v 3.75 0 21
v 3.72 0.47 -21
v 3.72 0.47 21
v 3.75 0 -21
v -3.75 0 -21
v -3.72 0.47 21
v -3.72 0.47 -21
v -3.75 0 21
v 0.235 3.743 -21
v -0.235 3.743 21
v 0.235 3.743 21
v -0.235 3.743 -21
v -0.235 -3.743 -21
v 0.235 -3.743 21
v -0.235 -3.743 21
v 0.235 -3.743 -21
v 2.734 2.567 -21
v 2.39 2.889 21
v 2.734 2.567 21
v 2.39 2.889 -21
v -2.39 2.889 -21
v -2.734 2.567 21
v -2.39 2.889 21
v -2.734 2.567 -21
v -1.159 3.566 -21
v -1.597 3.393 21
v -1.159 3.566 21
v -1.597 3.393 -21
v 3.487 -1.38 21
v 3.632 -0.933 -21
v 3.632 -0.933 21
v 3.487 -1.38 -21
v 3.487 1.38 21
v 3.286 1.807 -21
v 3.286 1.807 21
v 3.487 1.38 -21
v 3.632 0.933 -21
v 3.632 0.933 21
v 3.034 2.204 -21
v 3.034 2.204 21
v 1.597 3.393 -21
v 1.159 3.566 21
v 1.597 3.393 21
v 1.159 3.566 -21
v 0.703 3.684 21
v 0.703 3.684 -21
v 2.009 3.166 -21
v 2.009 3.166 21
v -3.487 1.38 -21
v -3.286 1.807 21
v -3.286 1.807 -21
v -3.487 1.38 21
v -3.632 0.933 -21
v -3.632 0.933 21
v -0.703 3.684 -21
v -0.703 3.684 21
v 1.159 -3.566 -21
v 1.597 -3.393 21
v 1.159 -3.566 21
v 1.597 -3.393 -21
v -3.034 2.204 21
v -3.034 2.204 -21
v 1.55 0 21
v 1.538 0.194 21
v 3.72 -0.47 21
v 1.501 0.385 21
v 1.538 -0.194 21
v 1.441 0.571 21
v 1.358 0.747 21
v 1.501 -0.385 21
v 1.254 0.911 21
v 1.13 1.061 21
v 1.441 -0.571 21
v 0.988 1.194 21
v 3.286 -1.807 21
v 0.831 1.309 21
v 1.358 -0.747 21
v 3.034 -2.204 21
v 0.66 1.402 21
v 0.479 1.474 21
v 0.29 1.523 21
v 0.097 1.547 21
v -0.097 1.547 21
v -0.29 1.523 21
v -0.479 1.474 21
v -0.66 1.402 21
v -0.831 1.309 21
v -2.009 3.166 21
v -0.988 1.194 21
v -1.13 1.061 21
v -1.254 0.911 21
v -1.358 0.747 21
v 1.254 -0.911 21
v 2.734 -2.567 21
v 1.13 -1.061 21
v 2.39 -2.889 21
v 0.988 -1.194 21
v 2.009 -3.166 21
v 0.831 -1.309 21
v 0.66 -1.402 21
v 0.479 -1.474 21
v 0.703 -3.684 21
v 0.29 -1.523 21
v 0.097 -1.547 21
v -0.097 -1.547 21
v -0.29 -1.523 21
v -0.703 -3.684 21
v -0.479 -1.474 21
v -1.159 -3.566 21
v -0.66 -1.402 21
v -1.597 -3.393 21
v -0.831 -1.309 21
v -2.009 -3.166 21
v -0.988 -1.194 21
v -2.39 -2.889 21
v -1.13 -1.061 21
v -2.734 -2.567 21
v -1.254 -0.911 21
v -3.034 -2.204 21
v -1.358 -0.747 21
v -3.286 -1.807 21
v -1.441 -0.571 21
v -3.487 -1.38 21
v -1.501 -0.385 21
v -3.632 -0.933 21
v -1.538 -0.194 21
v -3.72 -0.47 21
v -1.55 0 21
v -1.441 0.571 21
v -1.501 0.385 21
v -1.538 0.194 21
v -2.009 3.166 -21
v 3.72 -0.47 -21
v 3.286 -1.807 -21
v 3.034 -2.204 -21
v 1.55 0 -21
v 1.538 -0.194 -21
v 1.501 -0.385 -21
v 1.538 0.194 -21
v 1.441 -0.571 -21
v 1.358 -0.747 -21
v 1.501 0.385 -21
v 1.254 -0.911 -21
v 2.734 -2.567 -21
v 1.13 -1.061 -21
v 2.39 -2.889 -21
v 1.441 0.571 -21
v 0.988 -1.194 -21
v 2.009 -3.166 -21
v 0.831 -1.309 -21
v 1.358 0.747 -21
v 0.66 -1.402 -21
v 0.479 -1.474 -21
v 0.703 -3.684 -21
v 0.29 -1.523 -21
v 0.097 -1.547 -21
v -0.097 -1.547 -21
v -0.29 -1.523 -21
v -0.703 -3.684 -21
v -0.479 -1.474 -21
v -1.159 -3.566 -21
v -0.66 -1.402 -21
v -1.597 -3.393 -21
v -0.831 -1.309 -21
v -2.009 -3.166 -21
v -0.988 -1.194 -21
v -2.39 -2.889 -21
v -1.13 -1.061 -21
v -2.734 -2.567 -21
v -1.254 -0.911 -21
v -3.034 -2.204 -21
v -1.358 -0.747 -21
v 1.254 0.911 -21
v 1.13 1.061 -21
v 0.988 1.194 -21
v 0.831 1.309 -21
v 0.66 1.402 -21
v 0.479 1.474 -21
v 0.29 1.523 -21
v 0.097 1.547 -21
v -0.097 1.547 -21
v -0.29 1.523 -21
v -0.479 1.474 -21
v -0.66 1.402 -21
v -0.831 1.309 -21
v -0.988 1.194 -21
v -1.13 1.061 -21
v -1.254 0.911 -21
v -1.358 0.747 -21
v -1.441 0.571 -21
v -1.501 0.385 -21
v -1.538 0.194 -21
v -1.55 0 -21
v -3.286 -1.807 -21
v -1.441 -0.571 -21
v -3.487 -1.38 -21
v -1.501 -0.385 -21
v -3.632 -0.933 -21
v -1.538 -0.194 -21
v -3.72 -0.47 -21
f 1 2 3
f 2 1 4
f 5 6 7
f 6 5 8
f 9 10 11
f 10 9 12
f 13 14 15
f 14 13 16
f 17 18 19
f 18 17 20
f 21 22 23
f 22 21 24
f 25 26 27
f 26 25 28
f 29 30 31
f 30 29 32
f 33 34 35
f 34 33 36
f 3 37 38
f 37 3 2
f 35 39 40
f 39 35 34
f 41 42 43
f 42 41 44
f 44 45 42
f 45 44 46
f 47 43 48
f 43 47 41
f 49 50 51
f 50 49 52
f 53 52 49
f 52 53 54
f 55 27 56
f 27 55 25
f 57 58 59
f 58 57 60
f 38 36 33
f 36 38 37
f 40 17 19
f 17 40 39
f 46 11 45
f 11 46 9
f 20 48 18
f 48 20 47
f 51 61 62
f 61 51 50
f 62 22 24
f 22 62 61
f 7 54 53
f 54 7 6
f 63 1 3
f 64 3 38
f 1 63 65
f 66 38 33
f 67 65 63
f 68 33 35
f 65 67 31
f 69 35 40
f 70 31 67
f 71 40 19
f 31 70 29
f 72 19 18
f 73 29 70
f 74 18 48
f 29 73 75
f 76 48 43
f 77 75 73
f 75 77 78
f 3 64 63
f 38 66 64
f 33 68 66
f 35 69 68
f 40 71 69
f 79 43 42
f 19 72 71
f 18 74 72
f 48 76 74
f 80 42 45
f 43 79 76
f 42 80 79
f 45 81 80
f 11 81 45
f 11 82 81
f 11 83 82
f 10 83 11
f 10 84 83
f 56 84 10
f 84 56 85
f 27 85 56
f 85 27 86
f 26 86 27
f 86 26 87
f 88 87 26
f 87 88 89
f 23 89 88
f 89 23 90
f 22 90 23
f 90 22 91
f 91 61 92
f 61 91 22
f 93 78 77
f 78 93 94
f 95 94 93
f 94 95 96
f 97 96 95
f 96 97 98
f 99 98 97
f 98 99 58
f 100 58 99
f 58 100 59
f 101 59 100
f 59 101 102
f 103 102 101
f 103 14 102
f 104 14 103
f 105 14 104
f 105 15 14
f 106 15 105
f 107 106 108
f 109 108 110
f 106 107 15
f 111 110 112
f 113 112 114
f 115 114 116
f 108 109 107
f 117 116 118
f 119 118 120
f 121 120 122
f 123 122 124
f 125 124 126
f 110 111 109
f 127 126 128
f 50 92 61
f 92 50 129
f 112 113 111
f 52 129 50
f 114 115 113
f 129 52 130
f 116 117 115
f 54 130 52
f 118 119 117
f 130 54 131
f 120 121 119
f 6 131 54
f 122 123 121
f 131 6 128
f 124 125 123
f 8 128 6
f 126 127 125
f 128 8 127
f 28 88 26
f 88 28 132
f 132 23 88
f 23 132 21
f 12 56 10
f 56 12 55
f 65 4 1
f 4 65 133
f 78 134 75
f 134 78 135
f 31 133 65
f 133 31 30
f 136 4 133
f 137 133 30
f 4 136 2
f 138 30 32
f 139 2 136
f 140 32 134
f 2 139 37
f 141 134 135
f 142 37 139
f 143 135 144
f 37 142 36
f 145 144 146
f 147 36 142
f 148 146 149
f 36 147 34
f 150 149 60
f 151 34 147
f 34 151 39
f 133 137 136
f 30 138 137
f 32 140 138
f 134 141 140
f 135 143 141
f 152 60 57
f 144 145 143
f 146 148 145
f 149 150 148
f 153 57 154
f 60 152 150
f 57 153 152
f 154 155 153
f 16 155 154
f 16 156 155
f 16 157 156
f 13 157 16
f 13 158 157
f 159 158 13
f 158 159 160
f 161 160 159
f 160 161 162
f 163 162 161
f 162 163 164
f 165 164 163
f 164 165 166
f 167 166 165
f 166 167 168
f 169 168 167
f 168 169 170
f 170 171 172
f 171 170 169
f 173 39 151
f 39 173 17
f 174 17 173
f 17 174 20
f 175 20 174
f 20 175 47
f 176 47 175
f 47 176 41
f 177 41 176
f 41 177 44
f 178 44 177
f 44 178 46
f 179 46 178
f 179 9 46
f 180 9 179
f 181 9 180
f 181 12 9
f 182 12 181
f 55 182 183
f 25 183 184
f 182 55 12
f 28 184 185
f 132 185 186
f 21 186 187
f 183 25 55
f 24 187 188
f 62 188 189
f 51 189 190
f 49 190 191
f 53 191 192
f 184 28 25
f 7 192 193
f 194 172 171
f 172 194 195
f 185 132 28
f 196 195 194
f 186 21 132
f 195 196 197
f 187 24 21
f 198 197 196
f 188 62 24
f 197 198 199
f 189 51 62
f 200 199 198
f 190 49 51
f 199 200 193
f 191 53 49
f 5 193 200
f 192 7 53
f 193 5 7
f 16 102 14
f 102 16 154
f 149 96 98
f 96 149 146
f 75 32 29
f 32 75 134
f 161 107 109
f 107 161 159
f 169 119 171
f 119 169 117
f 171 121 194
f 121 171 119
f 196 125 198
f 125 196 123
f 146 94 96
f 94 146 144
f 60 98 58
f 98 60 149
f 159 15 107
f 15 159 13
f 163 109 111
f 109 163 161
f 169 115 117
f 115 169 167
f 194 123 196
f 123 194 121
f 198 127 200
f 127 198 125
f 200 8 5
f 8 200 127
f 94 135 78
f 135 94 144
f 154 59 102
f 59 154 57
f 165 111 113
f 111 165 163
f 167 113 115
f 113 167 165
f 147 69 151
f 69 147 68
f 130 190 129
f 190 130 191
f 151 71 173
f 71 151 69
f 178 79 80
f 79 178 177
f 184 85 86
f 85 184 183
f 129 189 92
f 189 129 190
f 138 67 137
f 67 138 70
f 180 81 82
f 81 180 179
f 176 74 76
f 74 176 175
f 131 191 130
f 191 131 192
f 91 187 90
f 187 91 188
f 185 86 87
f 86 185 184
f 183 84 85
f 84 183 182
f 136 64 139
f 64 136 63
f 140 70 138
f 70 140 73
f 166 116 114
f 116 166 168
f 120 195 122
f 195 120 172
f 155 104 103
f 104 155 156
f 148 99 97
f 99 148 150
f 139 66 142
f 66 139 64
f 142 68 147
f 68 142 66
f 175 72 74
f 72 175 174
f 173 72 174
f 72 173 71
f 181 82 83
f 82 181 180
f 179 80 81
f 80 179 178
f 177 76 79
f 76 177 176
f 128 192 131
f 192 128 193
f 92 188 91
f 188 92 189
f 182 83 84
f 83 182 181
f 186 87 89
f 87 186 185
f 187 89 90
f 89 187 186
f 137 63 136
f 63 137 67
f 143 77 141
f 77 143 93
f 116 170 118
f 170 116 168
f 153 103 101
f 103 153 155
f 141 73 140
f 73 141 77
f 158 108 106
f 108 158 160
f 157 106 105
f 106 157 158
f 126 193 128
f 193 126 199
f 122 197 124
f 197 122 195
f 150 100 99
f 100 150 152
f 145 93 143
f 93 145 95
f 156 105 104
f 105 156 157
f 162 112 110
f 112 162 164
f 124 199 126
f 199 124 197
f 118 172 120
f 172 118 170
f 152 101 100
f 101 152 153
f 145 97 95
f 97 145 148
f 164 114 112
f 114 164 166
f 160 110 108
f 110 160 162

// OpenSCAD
$fn = 50;


difference() {
	union() {
		translate(v = [0, 0, -21.0000000000]) {
			cylinder(h = 42, r = 3.7500000000);
		}
	}
	union() {
		translate(v = [0, 0, -100.0000000000]) {
			cylinder(h = 200, r = 1.5500000000);
		}
	}
}
